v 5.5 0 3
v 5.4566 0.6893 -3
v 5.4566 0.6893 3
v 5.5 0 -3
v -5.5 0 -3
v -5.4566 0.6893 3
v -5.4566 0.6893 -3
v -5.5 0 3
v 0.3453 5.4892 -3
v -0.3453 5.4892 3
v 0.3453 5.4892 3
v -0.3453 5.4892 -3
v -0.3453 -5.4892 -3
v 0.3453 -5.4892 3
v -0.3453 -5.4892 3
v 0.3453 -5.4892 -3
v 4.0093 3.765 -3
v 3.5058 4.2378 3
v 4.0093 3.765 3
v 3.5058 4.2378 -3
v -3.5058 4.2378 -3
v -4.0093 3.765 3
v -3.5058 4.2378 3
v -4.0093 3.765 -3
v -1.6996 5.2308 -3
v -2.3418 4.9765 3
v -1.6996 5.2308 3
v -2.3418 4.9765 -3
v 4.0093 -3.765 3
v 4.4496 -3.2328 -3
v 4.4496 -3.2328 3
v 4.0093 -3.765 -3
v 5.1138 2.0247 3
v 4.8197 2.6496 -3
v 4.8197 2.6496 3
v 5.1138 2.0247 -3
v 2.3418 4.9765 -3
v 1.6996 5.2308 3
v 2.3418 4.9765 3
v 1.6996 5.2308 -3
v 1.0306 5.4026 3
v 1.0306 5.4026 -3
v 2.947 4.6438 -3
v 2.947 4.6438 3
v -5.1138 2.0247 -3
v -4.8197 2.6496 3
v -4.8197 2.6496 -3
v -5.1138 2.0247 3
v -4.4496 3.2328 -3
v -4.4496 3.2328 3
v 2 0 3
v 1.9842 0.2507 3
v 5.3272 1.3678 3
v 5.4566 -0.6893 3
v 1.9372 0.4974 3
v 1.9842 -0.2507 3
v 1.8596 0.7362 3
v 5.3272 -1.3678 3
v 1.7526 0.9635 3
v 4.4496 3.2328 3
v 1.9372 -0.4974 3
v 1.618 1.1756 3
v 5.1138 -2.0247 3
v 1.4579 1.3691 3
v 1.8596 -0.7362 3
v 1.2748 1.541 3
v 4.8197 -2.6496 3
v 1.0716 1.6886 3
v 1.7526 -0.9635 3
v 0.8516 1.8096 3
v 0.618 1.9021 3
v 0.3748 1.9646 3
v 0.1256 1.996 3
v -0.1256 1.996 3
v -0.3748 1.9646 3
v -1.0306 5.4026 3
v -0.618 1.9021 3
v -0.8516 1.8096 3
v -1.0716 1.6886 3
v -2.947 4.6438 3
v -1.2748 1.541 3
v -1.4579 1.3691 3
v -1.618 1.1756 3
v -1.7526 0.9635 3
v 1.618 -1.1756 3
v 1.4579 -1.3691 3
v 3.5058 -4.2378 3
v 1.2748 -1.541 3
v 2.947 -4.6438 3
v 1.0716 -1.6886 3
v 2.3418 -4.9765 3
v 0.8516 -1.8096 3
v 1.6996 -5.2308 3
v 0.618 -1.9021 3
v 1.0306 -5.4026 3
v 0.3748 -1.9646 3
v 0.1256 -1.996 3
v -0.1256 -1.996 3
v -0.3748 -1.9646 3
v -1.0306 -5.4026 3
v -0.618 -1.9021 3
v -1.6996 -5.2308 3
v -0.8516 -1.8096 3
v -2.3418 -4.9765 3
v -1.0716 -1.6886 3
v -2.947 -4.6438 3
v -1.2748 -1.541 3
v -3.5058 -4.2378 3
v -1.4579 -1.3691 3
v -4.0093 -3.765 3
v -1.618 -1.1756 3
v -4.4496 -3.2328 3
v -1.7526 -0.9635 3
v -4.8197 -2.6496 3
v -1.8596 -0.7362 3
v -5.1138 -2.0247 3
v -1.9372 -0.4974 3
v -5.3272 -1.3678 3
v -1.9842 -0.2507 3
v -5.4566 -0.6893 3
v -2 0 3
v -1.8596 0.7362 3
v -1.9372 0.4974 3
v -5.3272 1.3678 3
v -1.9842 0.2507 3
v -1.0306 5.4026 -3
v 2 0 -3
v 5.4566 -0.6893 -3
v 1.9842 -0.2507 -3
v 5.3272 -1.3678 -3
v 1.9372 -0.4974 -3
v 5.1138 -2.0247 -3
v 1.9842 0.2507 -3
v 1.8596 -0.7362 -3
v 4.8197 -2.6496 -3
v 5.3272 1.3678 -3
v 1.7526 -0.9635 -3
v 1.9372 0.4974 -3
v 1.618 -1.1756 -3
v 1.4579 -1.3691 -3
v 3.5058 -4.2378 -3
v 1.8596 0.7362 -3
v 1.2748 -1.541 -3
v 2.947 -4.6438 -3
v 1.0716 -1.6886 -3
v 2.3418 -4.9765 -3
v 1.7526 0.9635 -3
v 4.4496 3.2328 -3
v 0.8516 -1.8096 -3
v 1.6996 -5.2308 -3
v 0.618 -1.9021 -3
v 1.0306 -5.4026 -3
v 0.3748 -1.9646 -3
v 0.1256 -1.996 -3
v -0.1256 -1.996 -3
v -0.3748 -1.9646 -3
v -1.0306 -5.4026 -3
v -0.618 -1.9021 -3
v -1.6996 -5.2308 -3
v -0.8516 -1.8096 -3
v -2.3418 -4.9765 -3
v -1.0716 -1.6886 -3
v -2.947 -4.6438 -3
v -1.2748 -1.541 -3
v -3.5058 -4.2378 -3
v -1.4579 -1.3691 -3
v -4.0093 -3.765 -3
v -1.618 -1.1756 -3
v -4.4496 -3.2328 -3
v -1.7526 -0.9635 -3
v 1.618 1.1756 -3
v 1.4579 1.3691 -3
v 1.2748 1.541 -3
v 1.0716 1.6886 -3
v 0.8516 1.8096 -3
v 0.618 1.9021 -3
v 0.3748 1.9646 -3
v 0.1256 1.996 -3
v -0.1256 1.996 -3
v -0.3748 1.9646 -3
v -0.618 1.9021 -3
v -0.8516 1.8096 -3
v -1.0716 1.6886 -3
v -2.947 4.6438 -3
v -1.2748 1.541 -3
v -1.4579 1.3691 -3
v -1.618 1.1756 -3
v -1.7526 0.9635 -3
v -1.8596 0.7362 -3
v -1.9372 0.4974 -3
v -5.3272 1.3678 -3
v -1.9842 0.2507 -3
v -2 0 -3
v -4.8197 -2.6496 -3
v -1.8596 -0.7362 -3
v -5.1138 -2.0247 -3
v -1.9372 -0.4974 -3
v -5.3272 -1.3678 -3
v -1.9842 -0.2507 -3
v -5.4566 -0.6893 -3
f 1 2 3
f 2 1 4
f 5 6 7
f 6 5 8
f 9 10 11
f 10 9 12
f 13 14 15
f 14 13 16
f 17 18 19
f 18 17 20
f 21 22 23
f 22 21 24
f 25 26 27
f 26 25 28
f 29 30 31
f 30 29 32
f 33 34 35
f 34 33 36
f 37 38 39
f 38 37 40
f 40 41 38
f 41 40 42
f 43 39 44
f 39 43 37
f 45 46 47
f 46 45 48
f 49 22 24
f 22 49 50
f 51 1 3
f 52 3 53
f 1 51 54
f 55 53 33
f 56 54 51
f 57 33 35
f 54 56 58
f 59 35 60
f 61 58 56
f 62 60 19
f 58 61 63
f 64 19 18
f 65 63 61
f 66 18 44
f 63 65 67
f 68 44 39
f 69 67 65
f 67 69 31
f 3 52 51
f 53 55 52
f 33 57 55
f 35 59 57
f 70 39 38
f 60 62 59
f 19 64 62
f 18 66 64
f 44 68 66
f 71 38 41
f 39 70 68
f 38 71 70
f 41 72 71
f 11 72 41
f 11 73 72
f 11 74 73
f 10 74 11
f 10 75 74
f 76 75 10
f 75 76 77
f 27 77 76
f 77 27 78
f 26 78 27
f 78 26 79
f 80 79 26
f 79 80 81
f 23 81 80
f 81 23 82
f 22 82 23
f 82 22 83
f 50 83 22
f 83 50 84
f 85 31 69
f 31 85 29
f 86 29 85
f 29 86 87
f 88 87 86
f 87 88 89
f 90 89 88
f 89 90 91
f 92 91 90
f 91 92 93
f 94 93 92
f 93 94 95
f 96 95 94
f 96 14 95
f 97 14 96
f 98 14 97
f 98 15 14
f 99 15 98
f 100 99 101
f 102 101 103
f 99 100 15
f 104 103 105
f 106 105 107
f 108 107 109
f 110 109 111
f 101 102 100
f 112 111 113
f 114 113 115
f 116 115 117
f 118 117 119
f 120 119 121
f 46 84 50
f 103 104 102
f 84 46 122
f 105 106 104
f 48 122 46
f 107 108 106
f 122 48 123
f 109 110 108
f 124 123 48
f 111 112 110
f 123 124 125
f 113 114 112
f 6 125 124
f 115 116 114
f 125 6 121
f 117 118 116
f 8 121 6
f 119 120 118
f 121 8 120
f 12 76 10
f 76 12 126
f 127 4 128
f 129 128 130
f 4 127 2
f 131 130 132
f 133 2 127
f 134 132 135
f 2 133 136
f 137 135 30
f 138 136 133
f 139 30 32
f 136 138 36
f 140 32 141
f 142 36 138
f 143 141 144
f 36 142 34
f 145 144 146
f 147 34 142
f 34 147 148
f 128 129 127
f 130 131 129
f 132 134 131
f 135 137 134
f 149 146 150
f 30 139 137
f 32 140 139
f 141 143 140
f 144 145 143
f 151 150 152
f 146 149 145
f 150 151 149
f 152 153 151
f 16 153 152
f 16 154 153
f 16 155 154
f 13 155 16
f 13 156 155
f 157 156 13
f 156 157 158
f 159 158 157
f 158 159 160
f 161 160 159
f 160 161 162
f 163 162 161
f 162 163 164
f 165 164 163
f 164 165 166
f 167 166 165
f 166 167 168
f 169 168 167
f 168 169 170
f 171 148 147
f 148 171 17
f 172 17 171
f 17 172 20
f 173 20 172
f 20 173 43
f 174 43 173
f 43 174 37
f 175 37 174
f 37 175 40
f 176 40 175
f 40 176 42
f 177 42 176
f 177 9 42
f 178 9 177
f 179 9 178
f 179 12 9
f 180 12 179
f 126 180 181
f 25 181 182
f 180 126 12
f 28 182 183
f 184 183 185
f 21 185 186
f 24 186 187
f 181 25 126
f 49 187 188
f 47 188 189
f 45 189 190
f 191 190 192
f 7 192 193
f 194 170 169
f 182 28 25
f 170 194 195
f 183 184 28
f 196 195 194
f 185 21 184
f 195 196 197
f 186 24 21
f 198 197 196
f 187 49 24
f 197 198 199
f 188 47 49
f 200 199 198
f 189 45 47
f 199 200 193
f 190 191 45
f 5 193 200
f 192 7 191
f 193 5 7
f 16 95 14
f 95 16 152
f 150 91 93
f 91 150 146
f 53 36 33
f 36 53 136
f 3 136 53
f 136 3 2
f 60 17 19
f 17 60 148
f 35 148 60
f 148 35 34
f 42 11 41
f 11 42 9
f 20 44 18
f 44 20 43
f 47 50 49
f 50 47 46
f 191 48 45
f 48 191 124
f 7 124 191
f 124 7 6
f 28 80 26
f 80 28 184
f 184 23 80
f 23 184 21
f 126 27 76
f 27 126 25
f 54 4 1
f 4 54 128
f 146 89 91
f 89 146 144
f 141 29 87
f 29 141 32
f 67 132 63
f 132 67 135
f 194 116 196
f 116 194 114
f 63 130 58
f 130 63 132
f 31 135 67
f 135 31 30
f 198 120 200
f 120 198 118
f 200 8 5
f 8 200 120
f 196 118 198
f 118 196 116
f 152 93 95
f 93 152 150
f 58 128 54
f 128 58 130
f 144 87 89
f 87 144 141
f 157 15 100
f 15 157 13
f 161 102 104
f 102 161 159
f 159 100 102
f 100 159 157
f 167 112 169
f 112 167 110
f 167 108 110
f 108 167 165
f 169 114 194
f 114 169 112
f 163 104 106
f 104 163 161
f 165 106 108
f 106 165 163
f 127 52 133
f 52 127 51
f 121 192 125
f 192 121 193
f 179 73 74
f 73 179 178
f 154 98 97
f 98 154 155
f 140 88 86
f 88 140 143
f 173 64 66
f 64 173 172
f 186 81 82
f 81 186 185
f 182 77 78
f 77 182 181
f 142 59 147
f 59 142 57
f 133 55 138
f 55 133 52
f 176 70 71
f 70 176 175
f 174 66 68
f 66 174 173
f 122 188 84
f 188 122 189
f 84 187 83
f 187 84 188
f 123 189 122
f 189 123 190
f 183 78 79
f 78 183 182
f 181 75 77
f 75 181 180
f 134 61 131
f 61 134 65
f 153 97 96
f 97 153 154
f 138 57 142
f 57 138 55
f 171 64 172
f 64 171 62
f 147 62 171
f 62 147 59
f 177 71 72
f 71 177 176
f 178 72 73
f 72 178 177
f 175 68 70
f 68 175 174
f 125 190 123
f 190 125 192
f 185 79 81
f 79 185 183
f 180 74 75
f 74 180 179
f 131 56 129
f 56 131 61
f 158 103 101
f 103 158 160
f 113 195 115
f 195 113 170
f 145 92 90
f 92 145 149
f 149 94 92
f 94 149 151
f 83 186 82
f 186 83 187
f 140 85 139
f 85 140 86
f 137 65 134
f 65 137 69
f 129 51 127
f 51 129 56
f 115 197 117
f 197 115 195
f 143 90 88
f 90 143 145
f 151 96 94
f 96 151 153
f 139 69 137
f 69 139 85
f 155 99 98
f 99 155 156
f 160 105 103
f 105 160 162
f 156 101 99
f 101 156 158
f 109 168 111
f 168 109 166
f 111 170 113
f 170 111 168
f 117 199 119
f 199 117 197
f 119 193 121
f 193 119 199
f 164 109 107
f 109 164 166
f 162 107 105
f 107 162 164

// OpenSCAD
$fn = 50;


difference() {
	union() {
		translate(v = [0, 0, -3.0000000000]) {
			cylinder(h = 6, r = 5.5000000000);
		}
	}
	union() {
		translate(v = [0, 0, -100.0000000000]) {
			cylinder(h = 200, r = 2);
		}
	}
}
